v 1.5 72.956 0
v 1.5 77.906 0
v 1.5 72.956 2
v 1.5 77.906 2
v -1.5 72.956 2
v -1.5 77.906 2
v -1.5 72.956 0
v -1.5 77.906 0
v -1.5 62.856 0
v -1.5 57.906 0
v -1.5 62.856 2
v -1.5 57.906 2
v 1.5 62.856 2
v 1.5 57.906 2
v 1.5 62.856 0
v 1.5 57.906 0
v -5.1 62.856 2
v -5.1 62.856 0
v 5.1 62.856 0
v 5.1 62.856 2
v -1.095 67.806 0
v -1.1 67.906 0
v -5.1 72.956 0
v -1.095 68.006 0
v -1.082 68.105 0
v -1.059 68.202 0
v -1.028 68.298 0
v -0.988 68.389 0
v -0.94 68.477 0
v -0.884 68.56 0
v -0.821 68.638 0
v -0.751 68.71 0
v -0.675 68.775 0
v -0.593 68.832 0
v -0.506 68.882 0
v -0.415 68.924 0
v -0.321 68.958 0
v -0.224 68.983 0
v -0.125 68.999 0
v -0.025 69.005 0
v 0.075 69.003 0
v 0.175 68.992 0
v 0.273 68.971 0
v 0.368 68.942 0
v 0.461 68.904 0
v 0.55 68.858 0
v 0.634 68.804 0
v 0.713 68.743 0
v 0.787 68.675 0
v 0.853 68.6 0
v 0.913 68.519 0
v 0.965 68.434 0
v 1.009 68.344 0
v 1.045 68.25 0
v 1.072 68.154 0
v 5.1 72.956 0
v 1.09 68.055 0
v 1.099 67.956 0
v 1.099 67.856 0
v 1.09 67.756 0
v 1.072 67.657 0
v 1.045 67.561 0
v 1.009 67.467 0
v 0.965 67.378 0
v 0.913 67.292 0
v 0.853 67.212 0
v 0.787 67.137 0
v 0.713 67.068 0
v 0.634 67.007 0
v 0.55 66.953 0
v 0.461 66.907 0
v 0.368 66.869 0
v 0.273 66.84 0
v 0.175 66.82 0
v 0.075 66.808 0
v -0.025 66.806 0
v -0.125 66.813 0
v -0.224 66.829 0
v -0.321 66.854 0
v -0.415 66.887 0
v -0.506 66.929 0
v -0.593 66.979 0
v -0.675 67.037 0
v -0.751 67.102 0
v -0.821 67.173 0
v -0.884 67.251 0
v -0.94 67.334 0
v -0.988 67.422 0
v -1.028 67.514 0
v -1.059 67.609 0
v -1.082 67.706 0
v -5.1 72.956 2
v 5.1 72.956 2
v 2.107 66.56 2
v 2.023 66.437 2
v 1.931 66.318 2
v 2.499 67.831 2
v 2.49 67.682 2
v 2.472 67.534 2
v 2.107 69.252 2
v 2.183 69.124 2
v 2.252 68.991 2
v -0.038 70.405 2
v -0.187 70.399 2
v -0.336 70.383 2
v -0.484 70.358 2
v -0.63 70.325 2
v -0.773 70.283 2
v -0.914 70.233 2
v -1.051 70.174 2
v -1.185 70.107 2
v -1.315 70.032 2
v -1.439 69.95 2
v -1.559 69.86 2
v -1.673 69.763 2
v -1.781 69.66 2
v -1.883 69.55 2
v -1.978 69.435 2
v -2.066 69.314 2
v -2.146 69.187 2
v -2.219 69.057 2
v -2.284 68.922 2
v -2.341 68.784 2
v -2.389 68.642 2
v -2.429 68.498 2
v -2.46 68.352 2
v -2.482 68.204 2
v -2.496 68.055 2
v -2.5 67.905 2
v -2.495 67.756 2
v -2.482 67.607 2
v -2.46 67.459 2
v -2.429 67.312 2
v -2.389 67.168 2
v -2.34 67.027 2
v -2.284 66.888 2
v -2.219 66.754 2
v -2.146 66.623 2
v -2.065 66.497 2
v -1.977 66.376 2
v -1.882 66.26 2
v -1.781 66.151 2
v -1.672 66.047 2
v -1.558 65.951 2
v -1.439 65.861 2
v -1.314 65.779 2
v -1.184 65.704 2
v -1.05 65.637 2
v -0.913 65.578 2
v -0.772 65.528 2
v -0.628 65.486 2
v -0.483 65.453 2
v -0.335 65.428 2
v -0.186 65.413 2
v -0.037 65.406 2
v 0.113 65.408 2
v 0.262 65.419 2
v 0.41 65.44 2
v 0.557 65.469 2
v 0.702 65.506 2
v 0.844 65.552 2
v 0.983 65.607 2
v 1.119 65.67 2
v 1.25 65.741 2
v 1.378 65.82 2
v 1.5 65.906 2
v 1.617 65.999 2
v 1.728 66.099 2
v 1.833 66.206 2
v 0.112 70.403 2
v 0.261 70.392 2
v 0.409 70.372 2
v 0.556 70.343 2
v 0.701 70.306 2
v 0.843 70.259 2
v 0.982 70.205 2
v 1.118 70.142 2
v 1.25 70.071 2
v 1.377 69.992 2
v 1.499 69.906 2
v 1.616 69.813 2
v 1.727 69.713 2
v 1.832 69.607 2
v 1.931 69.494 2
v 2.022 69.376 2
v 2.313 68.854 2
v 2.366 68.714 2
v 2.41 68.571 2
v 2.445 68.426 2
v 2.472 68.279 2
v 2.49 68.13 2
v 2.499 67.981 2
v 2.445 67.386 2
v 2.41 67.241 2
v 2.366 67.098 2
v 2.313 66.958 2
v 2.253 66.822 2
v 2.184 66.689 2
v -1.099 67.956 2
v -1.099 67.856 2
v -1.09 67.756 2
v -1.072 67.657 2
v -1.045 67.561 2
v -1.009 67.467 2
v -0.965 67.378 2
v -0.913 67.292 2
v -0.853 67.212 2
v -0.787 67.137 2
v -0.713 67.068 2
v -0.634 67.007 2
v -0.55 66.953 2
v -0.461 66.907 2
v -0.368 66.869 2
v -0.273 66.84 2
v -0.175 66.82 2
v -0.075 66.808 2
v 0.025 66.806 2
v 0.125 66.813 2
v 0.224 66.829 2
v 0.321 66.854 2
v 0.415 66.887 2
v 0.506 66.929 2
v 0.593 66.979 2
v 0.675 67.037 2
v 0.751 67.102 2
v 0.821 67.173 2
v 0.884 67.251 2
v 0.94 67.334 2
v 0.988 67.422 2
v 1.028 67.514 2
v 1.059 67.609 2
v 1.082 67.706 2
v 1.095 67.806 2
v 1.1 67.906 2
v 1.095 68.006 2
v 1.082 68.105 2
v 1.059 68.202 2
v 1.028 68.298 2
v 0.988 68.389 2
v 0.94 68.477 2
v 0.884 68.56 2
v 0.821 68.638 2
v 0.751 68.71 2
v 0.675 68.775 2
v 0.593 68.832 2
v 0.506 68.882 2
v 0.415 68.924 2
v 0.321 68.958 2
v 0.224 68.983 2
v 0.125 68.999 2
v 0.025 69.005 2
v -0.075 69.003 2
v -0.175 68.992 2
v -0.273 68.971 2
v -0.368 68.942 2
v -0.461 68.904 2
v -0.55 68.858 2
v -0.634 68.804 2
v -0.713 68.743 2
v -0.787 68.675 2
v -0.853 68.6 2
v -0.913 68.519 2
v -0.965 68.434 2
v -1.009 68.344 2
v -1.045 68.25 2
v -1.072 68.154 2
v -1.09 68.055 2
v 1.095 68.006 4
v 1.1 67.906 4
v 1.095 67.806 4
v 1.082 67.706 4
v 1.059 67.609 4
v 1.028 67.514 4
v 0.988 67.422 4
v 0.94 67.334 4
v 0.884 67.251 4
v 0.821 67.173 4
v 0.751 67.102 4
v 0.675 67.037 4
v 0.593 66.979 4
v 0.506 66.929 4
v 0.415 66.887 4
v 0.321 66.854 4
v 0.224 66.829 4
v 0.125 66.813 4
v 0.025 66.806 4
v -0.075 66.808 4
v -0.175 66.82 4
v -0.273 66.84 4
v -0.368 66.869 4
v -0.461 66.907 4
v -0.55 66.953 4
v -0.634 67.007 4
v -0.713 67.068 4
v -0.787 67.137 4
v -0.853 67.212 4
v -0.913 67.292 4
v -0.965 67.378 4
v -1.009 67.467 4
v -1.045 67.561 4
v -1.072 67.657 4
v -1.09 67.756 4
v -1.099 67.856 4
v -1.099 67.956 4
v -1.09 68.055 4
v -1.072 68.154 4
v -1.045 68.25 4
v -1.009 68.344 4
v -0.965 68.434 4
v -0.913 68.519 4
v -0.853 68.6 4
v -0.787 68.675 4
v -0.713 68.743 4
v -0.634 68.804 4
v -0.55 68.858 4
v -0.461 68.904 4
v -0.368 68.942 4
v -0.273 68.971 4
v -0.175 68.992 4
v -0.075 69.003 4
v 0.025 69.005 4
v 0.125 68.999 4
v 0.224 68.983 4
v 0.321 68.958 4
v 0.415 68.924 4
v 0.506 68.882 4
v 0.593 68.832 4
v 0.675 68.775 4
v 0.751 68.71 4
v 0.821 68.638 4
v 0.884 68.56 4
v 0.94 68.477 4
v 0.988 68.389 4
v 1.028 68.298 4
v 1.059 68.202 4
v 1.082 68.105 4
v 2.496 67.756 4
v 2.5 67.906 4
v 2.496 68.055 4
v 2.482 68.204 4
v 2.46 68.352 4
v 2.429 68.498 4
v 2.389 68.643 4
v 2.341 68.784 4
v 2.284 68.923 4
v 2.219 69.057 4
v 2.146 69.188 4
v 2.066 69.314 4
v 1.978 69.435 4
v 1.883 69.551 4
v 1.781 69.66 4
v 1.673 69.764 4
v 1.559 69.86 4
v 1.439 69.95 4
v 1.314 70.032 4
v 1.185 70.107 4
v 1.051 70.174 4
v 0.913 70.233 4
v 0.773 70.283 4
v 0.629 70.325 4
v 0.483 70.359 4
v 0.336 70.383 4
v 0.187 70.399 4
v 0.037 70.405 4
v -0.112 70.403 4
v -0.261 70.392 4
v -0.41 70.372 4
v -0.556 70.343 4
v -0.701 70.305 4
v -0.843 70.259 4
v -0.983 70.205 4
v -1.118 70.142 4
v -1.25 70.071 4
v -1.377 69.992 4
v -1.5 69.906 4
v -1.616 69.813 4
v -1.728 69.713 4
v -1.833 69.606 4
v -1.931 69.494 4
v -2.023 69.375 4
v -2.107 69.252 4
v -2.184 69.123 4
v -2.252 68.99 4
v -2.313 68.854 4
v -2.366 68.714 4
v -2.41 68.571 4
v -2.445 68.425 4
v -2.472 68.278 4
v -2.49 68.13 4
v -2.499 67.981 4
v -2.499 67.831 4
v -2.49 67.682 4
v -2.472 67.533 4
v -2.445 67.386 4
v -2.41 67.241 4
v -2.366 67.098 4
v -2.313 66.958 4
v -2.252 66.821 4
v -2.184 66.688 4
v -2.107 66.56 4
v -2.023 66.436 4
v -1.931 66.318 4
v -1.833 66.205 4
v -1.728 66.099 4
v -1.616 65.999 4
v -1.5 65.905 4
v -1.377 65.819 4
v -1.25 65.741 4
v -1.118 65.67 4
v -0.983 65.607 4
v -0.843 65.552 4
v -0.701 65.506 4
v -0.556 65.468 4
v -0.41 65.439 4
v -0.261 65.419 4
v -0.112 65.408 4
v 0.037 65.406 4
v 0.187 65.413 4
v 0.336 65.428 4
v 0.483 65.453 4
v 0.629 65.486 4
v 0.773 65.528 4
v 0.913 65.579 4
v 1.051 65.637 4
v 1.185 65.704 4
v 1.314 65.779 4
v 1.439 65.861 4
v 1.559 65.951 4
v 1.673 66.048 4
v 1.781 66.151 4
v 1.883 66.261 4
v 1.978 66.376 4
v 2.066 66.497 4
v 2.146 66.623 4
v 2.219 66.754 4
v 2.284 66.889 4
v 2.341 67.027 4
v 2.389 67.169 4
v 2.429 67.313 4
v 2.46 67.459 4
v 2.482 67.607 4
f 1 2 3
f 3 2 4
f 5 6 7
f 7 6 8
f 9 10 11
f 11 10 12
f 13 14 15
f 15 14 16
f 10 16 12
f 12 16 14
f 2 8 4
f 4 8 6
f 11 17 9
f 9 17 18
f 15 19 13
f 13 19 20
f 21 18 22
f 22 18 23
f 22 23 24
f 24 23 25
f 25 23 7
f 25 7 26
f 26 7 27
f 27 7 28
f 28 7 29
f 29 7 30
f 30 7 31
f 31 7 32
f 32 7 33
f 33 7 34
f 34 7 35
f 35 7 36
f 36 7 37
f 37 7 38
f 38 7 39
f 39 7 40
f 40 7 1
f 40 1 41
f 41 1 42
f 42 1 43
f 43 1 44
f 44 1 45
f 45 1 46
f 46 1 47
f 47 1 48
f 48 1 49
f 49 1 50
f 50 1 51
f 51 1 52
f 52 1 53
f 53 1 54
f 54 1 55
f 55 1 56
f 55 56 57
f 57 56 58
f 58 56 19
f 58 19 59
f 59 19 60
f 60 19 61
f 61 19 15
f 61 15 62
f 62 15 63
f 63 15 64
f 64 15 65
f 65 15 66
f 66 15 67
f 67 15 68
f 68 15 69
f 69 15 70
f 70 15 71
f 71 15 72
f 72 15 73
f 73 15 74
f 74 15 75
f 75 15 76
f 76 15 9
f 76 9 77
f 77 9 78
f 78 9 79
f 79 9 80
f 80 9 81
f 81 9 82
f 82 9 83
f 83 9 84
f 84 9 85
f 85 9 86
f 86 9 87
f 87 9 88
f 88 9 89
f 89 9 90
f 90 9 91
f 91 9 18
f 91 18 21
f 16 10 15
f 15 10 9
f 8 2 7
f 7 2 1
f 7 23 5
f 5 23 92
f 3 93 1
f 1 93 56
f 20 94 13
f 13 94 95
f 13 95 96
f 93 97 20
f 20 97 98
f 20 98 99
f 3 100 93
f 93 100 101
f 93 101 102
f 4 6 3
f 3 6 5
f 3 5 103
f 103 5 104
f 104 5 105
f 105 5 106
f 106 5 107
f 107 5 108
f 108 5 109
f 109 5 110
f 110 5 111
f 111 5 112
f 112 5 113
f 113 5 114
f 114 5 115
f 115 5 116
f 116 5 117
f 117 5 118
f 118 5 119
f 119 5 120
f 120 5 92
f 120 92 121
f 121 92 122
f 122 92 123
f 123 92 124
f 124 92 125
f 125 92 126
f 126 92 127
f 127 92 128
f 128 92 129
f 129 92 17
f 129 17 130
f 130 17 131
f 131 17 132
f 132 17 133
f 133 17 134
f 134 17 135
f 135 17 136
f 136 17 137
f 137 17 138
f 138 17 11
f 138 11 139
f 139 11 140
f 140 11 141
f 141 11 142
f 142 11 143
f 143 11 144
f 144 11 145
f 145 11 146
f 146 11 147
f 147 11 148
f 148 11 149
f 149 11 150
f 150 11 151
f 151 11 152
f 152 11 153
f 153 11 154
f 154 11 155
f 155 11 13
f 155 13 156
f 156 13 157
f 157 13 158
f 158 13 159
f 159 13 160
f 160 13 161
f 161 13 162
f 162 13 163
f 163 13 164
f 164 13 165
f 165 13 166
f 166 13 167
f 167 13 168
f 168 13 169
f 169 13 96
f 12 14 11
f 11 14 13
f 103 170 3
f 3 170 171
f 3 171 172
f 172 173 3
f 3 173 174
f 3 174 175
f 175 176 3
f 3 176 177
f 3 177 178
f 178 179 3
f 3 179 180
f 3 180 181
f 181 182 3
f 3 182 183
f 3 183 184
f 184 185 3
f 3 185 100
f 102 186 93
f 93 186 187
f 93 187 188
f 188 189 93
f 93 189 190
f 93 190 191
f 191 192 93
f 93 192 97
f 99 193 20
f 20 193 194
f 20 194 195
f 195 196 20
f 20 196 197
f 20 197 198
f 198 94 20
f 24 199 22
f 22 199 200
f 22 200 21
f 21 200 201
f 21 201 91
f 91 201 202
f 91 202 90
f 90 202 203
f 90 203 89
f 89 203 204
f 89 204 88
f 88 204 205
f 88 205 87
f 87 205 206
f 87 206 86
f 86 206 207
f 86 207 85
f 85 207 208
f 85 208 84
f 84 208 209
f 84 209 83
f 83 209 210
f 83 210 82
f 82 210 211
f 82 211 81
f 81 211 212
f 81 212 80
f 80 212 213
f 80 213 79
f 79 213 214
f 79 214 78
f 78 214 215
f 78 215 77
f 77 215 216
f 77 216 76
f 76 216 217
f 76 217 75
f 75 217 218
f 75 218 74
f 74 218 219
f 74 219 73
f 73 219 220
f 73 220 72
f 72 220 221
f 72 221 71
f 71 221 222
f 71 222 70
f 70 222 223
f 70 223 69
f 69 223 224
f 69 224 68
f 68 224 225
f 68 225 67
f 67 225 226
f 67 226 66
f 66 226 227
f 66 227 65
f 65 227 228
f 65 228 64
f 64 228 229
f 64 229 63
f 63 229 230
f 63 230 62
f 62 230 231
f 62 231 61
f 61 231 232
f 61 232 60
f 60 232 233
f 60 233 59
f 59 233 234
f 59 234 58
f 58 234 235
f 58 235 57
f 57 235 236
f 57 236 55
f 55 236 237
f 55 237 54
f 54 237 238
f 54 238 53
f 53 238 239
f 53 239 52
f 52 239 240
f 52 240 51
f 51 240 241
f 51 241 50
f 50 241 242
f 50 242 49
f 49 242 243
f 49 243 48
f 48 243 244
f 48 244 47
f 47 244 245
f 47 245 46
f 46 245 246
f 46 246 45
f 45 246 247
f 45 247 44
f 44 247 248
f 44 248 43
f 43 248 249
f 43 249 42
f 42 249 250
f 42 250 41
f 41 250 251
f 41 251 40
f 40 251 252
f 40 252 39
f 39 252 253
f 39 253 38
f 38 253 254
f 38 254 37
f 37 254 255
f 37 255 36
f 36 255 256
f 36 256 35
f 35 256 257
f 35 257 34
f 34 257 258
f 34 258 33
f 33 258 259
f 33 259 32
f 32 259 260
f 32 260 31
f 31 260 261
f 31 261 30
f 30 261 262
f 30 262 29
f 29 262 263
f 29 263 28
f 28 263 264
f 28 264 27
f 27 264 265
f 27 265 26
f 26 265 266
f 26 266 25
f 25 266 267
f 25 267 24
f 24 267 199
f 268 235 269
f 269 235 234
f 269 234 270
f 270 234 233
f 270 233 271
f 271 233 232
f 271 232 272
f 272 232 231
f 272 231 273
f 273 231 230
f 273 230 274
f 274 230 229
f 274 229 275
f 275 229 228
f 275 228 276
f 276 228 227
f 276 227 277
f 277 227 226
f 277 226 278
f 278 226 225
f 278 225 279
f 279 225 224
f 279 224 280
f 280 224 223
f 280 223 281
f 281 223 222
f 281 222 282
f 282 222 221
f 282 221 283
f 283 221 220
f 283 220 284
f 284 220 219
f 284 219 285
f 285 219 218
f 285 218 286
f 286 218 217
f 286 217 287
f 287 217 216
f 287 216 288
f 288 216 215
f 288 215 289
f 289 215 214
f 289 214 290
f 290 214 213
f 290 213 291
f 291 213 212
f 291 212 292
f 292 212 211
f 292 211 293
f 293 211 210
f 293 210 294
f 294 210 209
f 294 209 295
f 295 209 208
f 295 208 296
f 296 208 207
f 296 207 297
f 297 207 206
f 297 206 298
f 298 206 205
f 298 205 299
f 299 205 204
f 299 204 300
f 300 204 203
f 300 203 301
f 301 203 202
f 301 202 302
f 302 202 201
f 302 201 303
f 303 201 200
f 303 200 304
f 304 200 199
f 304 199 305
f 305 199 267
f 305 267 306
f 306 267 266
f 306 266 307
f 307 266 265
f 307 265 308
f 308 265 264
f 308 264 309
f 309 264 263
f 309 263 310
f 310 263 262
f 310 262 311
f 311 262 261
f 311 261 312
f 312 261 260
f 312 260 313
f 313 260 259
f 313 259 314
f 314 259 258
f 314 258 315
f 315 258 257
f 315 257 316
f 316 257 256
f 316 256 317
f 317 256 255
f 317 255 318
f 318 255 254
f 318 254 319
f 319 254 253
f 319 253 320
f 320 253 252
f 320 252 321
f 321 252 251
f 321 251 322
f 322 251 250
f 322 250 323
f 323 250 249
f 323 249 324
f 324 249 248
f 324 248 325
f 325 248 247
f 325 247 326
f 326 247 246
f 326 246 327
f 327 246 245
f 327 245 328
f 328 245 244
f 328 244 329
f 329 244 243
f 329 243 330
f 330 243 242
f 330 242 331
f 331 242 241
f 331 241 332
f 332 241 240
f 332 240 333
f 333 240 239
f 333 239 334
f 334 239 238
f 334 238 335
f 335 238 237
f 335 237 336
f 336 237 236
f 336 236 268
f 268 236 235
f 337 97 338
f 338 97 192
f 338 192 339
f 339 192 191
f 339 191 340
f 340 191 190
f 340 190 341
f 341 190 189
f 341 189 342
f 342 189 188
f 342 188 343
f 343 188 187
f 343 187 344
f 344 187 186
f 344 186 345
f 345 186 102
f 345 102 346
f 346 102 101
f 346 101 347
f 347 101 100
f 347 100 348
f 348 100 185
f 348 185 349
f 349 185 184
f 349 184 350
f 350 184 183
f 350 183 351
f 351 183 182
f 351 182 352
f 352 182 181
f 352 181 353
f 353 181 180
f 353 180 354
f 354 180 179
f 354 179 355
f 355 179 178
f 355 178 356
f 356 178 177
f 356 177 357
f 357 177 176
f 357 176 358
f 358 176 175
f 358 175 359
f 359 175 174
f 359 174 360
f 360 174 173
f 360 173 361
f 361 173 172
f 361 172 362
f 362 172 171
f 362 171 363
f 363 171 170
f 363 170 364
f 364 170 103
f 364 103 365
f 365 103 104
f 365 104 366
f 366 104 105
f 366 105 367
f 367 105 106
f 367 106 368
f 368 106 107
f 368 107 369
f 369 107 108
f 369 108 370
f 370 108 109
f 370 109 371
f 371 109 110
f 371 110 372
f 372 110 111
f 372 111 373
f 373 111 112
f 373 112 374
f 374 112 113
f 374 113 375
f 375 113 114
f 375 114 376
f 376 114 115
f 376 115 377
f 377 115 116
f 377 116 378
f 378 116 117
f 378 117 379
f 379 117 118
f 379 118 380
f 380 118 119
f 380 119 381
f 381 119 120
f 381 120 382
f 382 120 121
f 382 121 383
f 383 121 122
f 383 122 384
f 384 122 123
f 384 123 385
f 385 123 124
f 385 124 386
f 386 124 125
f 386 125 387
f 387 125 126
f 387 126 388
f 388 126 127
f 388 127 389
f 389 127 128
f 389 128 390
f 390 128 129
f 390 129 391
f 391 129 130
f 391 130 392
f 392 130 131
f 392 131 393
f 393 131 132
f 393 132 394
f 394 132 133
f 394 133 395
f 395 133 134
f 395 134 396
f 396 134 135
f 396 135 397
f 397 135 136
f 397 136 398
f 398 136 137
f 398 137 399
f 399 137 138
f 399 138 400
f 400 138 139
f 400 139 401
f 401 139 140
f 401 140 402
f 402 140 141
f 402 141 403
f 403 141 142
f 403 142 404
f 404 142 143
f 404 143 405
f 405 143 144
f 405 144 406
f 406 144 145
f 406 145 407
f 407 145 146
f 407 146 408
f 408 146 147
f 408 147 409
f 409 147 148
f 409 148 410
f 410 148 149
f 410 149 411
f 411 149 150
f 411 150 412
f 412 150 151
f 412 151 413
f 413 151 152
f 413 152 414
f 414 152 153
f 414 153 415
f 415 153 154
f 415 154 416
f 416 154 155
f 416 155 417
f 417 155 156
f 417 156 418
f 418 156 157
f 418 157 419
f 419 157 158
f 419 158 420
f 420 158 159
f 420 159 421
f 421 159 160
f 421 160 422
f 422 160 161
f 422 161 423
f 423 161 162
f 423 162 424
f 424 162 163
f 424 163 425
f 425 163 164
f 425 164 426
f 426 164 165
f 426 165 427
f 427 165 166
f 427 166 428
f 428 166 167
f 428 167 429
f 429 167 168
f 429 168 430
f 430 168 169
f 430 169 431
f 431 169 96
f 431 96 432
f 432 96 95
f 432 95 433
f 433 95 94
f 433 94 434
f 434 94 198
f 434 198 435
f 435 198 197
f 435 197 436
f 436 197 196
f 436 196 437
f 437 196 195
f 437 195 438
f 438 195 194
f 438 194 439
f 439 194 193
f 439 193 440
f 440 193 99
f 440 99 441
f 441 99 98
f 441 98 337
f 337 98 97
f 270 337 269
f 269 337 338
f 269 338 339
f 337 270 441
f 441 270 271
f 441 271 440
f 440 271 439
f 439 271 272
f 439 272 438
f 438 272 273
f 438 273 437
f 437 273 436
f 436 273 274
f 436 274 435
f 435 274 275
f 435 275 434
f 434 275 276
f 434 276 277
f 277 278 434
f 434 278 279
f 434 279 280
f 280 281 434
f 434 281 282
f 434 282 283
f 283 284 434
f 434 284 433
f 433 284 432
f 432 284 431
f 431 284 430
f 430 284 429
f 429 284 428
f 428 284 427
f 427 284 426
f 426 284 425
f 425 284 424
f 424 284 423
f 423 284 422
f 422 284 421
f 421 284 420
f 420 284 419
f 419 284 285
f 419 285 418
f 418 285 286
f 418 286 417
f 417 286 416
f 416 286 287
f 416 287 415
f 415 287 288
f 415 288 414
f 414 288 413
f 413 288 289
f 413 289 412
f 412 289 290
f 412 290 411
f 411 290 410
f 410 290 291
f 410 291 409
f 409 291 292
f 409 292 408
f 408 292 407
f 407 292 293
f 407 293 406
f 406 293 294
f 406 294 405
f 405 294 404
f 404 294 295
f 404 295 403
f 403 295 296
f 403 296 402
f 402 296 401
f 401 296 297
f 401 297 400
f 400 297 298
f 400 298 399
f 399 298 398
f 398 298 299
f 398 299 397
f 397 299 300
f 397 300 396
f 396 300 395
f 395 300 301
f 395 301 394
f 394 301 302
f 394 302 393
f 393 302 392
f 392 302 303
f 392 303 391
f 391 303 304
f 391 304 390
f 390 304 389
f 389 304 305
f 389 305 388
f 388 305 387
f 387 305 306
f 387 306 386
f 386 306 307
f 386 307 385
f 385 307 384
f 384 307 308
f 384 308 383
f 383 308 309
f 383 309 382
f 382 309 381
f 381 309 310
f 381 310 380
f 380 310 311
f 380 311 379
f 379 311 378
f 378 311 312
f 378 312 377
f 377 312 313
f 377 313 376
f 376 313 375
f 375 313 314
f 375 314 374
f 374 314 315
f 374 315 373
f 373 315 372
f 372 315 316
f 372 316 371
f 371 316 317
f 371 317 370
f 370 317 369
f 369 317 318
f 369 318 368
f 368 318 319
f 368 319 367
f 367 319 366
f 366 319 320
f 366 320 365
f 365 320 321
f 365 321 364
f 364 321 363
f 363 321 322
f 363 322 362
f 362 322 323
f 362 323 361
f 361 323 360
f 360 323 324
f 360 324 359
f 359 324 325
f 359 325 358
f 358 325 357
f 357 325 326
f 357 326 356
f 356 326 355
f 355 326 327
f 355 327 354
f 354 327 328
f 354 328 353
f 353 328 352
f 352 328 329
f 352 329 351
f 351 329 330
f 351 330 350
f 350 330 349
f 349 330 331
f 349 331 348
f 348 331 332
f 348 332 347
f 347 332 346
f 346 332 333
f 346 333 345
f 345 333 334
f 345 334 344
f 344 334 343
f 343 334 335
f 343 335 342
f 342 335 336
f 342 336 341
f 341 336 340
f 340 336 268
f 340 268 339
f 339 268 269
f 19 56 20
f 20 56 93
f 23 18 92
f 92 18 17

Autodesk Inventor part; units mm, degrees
ref_plane "YZ Plane" through (0, 0, 0) normal (1, 0, 0) x (0, 1, 0)
ref_plane "XZ Plane" through (0, 0, 0) normal (0, 1, 0) x (-1, 0, 0)
ref_plane "XY Plane" through (0, 0, 0) normal (0, 0, 1) x (1, 0, 0)
sketch "Skizze1" plane through (0, 0, 0) normal (0, 0, 1) x (1, 0, 0)
  line L0 (2.8537, 62.8557) -> (-11.3867, 62.8557) projected
  line L1 (-8.4337, 63.8875) -> (2.8537, 63.8875) projected
  line L2 (2.8537, 63.8875) -> (2.8537, 62.8557) projected
  line L3 (5.1, 52.7557) -> (-5.1, 52.7557)
  line L4 (-5.1, 52.7557) -> (-5.1, 72.9557)
  line L5 (-5.1, 72.9557) -> (5.1, 72.9557)
  line L6 (5.1, 72.9557) -> (5.1, 52.7557)
  line L7 (5.1, 52.7557) -> (-5.1, 72.9557) construction
  line L8 (-5.1, 52.7557) -> (5.1, 72.9557) construction
  line L9 (5.1, 62.8557) -> (-5.1, 62.8557)
  point P0 (0, 0)
  point P1 (0, 62.8557)
extrude "Extrusion1" add sketch "Skizze1" along normal blind 2 contours L0 L4 L1 L2 | L2 L1 L4 L5 L6 L9
sketch "Skizze2" plane through (0, 0, 2) normal (0, 0, 1) x (1, 0, 0)
  line L0 (-5.1, 72.9557) -> (-5.1, 62.8557) projected
  line L1 (-5.1, 62.8557) -> (5.1, 62.8557) projected
  line L2 (5.1, 62.8557) -> (5.1, 72.9557) projected
  line L3 (5.1, 72.9557) -> (-5.1, 72.9557) projected
  circle A0 centre (0, 67.9057) radius 2.5
  circle A1 centre (0, 67.9057) radius 1.1
  point P0 (0, 0)
  dimension "d4" = 5
  dimension "d5" = 2.2
extrude "Extrusion2" add sketch "Skizze2" along normal blind 2 contours A0
sketch "Skizze3" plane through (0, 0, 2) normal (0, 0, 1) x (1, 0, 0)
  circle A0 centre (0, 67.9057) radius 1.1 projected
  point P0 (0, 0)
extrude "Extrusion3" cut sketch "Skizze3" against normal blind 2
sketch "Skizze4" plane through (0, 0, 0) normal (0, 0, -1) x (-1, 0, 0)
  circle A0 centre (0, 67.9057) radius 1.1 construction
  line L0 (1.5, 77.9057) -> (-1.5, 77.9057)
  line L1 (-1.5, 77.9057) -> (-1.5, 57.9057)
  line L2 (-1.5, 57.9057) -> (1.5, 57.9057)
  line L3 (1.5, 57.9057) -> (1.5, 77.9057)
  line L4 (1.5, 77.9057) -> (-1.5, 57.9057) construction
  line L5 (-1.5, 77.9057) -> (1.5, 57.9057) construction
  point P0 (0, 0)
  dimension "d10" = 3
  dimension "d11" = 20
extrude "Extrusion4" add sketch "Skizze4" against normal blind 2
sketch "Skizze5" plane through (0, 0, 0) normal (0, 0, -1) x (-1, 0, 0)
  circle A0 centre (0, 67.9057) radius 1.1 projected
  point P0 (0, 0)
extrude "Extrusion5" cut sketch "Skizze5" against normal blind 10
properties part number "amt_plate" material "Nylon 6/6"
